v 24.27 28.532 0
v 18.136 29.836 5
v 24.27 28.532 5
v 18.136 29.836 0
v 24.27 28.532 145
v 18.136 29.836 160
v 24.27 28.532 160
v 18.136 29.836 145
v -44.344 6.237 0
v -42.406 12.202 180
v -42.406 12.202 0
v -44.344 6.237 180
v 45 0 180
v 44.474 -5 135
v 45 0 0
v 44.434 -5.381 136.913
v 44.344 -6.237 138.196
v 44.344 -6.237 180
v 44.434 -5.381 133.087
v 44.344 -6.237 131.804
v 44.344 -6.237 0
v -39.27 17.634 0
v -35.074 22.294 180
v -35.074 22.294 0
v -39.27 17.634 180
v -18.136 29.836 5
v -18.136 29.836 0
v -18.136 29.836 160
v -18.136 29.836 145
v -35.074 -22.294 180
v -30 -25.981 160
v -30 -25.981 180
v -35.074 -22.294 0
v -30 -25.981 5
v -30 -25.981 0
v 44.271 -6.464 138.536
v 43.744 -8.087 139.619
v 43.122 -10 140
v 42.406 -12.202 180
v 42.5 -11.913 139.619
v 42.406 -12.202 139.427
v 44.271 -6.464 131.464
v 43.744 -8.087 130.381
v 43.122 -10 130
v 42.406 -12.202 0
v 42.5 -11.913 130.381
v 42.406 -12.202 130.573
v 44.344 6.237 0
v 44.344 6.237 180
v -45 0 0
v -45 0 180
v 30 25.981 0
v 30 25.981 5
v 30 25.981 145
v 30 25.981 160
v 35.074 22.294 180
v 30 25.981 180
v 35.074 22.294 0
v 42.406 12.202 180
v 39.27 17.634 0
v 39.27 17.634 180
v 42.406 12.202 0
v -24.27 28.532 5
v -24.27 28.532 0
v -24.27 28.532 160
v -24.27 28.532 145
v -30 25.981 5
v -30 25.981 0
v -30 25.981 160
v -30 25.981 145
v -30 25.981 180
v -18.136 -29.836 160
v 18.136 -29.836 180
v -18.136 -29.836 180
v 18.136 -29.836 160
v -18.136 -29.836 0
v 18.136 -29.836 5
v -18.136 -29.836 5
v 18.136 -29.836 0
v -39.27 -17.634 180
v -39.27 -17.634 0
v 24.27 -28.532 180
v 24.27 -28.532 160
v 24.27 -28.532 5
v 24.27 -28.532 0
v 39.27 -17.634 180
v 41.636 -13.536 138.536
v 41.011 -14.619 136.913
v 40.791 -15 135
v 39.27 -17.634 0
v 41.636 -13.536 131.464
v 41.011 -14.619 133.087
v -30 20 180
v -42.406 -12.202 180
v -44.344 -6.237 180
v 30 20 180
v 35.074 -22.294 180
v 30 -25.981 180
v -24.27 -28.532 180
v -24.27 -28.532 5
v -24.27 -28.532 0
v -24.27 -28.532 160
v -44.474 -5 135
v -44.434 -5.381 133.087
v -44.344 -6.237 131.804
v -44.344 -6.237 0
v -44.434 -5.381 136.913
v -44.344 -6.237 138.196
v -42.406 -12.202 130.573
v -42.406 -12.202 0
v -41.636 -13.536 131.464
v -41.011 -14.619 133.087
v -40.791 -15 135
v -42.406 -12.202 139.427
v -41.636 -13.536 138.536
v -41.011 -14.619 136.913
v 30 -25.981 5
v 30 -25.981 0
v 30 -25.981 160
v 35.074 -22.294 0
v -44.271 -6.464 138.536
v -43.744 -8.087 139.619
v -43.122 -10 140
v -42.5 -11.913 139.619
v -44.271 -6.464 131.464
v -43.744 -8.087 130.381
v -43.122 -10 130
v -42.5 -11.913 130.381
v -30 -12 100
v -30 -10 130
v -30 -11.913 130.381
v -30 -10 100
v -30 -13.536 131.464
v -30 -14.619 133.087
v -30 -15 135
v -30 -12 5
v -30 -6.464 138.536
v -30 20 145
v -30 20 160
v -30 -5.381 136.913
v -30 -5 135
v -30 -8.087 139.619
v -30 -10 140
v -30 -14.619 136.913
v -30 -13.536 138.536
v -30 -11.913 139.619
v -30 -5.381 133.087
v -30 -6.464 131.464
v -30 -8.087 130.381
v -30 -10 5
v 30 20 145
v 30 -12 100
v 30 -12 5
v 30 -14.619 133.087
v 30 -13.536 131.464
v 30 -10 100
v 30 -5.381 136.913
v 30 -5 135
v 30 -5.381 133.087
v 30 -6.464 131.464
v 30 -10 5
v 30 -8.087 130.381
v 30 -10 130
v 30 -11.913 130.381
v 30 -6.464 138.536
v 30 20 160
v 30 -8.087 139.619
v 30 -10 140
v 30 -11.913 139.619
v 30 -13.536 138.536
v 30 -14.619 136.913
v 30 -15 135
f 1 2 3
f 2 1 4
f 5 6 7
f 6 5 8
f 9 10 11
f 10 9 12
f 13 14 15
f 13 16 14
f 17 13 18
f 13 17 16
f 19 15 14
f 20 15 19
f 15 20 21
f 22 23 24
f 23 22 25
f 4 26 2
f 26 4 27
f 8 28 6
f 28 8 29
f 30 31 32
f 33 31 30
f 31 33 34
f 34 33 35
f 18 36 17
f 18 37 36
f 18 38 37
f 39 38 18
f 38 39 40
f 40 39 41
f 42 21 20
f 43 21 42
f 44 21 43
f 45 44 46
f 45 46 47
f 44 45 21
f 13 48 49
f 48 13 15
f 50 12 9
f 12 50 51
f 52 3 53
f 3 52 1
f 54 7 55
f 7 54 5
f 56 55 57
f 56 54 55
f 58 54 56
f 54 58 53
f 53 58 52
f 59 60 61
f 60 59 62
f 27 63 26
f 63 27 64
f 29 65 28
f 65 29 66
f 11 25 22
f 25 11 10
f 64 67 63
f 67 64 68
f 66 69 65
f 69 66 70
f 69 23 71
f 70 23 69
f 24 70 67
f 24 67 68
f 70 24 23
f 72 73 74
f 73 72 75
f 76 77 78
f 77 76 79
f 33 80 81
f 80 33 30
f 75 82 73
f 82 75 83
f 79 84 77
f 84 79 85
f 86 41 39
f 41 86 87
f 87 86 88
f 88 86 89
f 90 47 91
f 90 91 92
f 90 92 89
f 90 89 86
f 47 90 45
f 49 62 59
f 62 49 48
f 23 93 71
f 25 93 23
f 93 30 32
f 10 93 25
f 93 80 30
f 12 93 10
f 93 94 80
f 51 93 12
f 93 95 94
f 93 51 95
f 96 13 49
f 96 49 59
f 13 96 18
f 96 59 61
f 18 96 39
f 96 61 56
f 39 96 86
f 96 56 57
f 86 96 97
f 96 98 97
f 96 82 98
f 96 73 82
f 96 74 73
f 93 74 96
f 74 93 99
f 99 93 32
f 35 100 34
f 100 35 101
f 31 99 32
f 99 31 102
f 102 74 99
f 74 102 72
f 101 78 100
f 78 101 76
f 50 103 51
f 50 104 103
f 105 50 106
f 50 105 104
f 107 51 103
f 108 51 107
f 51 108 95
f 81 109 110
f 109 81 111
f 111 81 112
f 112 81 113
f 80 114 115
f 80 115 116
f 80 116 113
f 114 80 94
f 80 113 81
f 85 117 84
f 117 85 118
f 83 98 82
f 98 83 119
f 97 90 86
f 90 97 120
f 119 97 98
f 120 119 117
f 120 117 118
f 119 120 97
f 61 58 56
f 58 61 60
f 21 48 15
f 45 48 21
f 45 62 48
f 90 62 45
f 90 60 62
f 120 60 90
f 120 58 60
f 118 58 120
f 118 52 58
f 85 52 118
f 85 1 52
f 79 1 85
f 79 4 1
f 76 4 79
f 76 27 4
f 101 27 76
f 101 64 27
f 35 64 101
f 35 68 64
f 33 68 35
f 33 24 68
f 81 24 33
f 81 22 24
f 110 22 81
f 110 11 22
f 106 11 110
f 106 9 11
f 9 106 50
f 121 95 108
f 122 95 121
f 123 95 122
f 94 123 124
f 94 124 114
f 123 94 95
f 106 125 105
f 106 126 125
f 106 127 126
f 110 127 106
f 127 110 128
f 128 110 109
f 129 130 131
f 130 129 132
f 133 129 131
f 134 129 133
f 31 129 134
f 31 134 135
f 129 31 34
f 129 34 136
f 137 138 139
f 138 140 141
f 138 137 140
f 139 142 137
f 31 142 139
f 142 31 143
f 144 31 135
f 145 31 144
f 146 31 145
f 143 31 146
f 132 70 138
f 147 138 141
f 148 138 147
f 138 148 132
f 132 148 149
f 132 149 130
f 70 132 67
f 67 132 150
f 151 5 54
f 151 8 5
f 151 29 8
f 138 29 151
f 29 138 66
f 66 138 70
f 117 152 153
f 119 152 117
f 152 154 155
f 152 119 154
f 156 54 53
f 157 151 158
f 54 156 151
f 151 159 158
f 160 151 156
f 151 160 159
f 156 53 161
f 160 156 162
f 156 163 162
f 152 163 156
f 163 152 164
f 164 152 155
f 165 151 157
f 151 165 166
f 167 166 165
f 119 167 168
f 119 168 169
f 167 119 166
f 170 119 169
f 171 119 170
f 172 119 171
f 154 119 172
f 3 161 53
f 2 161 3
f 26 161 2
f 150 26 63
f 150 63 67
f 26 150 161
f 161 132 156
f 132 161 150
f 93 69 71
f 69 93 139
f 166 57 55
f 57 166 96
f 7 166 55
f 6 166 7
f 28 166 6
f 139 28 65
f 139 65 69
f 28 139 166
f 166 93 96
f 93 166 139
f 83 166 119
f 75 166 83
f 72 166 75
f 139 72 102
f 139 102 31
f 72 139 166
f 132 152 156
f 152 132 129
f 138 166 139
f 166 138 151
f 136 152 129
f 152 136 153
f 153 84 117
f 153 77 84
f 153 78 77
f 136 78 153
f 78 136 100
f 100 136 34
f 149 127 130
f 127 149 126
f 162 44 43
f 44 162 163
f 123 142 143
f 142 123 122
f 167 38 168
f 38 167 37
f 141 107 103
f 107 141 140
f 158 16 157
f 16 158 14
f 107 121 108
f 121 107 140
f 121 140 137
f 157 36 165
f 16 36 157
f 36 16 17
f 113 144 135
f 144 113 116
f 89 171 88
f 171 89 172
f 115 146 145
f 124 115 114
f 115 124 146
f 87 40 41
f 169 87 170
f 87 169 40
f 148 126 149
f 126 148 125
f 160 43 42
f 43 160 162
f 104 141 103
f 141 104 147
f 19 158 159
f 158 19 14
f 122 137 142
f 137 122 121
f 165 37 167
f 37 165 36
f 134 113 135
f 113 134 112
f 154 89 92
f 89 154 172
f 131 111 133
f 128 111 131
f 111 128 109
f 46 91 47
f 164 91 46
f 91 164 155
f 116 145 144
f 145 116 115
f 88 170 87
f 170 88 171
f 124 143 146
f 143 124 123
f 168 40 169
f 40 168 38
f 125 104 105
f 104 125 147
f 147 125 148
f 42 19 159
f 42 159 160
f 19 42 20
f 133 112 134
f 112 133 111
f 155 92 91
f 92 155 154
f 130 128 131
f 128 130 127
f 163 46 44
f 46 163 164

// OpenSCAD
difference(){
    hull(){
        translate([15,0,0])
        cylinder(h=180, r=30, center=false);
        translate([-15,0,0])
        cylinder(h=180, r=30, center=false);
    }
    translate([-30,-10,5])
    cube([60,50,140]);
    translate([-30,20,160])
    cube([60,10,40]);
    translate([-30, -40, 100])
    cube([60,60,60]);
    translate([-30,-30,5])
    cube([60,18,150]);
    rotate([90,90,90])
    translate([-135,-10,-90])
    cylinder(h=300, r=5, center = false);
}
